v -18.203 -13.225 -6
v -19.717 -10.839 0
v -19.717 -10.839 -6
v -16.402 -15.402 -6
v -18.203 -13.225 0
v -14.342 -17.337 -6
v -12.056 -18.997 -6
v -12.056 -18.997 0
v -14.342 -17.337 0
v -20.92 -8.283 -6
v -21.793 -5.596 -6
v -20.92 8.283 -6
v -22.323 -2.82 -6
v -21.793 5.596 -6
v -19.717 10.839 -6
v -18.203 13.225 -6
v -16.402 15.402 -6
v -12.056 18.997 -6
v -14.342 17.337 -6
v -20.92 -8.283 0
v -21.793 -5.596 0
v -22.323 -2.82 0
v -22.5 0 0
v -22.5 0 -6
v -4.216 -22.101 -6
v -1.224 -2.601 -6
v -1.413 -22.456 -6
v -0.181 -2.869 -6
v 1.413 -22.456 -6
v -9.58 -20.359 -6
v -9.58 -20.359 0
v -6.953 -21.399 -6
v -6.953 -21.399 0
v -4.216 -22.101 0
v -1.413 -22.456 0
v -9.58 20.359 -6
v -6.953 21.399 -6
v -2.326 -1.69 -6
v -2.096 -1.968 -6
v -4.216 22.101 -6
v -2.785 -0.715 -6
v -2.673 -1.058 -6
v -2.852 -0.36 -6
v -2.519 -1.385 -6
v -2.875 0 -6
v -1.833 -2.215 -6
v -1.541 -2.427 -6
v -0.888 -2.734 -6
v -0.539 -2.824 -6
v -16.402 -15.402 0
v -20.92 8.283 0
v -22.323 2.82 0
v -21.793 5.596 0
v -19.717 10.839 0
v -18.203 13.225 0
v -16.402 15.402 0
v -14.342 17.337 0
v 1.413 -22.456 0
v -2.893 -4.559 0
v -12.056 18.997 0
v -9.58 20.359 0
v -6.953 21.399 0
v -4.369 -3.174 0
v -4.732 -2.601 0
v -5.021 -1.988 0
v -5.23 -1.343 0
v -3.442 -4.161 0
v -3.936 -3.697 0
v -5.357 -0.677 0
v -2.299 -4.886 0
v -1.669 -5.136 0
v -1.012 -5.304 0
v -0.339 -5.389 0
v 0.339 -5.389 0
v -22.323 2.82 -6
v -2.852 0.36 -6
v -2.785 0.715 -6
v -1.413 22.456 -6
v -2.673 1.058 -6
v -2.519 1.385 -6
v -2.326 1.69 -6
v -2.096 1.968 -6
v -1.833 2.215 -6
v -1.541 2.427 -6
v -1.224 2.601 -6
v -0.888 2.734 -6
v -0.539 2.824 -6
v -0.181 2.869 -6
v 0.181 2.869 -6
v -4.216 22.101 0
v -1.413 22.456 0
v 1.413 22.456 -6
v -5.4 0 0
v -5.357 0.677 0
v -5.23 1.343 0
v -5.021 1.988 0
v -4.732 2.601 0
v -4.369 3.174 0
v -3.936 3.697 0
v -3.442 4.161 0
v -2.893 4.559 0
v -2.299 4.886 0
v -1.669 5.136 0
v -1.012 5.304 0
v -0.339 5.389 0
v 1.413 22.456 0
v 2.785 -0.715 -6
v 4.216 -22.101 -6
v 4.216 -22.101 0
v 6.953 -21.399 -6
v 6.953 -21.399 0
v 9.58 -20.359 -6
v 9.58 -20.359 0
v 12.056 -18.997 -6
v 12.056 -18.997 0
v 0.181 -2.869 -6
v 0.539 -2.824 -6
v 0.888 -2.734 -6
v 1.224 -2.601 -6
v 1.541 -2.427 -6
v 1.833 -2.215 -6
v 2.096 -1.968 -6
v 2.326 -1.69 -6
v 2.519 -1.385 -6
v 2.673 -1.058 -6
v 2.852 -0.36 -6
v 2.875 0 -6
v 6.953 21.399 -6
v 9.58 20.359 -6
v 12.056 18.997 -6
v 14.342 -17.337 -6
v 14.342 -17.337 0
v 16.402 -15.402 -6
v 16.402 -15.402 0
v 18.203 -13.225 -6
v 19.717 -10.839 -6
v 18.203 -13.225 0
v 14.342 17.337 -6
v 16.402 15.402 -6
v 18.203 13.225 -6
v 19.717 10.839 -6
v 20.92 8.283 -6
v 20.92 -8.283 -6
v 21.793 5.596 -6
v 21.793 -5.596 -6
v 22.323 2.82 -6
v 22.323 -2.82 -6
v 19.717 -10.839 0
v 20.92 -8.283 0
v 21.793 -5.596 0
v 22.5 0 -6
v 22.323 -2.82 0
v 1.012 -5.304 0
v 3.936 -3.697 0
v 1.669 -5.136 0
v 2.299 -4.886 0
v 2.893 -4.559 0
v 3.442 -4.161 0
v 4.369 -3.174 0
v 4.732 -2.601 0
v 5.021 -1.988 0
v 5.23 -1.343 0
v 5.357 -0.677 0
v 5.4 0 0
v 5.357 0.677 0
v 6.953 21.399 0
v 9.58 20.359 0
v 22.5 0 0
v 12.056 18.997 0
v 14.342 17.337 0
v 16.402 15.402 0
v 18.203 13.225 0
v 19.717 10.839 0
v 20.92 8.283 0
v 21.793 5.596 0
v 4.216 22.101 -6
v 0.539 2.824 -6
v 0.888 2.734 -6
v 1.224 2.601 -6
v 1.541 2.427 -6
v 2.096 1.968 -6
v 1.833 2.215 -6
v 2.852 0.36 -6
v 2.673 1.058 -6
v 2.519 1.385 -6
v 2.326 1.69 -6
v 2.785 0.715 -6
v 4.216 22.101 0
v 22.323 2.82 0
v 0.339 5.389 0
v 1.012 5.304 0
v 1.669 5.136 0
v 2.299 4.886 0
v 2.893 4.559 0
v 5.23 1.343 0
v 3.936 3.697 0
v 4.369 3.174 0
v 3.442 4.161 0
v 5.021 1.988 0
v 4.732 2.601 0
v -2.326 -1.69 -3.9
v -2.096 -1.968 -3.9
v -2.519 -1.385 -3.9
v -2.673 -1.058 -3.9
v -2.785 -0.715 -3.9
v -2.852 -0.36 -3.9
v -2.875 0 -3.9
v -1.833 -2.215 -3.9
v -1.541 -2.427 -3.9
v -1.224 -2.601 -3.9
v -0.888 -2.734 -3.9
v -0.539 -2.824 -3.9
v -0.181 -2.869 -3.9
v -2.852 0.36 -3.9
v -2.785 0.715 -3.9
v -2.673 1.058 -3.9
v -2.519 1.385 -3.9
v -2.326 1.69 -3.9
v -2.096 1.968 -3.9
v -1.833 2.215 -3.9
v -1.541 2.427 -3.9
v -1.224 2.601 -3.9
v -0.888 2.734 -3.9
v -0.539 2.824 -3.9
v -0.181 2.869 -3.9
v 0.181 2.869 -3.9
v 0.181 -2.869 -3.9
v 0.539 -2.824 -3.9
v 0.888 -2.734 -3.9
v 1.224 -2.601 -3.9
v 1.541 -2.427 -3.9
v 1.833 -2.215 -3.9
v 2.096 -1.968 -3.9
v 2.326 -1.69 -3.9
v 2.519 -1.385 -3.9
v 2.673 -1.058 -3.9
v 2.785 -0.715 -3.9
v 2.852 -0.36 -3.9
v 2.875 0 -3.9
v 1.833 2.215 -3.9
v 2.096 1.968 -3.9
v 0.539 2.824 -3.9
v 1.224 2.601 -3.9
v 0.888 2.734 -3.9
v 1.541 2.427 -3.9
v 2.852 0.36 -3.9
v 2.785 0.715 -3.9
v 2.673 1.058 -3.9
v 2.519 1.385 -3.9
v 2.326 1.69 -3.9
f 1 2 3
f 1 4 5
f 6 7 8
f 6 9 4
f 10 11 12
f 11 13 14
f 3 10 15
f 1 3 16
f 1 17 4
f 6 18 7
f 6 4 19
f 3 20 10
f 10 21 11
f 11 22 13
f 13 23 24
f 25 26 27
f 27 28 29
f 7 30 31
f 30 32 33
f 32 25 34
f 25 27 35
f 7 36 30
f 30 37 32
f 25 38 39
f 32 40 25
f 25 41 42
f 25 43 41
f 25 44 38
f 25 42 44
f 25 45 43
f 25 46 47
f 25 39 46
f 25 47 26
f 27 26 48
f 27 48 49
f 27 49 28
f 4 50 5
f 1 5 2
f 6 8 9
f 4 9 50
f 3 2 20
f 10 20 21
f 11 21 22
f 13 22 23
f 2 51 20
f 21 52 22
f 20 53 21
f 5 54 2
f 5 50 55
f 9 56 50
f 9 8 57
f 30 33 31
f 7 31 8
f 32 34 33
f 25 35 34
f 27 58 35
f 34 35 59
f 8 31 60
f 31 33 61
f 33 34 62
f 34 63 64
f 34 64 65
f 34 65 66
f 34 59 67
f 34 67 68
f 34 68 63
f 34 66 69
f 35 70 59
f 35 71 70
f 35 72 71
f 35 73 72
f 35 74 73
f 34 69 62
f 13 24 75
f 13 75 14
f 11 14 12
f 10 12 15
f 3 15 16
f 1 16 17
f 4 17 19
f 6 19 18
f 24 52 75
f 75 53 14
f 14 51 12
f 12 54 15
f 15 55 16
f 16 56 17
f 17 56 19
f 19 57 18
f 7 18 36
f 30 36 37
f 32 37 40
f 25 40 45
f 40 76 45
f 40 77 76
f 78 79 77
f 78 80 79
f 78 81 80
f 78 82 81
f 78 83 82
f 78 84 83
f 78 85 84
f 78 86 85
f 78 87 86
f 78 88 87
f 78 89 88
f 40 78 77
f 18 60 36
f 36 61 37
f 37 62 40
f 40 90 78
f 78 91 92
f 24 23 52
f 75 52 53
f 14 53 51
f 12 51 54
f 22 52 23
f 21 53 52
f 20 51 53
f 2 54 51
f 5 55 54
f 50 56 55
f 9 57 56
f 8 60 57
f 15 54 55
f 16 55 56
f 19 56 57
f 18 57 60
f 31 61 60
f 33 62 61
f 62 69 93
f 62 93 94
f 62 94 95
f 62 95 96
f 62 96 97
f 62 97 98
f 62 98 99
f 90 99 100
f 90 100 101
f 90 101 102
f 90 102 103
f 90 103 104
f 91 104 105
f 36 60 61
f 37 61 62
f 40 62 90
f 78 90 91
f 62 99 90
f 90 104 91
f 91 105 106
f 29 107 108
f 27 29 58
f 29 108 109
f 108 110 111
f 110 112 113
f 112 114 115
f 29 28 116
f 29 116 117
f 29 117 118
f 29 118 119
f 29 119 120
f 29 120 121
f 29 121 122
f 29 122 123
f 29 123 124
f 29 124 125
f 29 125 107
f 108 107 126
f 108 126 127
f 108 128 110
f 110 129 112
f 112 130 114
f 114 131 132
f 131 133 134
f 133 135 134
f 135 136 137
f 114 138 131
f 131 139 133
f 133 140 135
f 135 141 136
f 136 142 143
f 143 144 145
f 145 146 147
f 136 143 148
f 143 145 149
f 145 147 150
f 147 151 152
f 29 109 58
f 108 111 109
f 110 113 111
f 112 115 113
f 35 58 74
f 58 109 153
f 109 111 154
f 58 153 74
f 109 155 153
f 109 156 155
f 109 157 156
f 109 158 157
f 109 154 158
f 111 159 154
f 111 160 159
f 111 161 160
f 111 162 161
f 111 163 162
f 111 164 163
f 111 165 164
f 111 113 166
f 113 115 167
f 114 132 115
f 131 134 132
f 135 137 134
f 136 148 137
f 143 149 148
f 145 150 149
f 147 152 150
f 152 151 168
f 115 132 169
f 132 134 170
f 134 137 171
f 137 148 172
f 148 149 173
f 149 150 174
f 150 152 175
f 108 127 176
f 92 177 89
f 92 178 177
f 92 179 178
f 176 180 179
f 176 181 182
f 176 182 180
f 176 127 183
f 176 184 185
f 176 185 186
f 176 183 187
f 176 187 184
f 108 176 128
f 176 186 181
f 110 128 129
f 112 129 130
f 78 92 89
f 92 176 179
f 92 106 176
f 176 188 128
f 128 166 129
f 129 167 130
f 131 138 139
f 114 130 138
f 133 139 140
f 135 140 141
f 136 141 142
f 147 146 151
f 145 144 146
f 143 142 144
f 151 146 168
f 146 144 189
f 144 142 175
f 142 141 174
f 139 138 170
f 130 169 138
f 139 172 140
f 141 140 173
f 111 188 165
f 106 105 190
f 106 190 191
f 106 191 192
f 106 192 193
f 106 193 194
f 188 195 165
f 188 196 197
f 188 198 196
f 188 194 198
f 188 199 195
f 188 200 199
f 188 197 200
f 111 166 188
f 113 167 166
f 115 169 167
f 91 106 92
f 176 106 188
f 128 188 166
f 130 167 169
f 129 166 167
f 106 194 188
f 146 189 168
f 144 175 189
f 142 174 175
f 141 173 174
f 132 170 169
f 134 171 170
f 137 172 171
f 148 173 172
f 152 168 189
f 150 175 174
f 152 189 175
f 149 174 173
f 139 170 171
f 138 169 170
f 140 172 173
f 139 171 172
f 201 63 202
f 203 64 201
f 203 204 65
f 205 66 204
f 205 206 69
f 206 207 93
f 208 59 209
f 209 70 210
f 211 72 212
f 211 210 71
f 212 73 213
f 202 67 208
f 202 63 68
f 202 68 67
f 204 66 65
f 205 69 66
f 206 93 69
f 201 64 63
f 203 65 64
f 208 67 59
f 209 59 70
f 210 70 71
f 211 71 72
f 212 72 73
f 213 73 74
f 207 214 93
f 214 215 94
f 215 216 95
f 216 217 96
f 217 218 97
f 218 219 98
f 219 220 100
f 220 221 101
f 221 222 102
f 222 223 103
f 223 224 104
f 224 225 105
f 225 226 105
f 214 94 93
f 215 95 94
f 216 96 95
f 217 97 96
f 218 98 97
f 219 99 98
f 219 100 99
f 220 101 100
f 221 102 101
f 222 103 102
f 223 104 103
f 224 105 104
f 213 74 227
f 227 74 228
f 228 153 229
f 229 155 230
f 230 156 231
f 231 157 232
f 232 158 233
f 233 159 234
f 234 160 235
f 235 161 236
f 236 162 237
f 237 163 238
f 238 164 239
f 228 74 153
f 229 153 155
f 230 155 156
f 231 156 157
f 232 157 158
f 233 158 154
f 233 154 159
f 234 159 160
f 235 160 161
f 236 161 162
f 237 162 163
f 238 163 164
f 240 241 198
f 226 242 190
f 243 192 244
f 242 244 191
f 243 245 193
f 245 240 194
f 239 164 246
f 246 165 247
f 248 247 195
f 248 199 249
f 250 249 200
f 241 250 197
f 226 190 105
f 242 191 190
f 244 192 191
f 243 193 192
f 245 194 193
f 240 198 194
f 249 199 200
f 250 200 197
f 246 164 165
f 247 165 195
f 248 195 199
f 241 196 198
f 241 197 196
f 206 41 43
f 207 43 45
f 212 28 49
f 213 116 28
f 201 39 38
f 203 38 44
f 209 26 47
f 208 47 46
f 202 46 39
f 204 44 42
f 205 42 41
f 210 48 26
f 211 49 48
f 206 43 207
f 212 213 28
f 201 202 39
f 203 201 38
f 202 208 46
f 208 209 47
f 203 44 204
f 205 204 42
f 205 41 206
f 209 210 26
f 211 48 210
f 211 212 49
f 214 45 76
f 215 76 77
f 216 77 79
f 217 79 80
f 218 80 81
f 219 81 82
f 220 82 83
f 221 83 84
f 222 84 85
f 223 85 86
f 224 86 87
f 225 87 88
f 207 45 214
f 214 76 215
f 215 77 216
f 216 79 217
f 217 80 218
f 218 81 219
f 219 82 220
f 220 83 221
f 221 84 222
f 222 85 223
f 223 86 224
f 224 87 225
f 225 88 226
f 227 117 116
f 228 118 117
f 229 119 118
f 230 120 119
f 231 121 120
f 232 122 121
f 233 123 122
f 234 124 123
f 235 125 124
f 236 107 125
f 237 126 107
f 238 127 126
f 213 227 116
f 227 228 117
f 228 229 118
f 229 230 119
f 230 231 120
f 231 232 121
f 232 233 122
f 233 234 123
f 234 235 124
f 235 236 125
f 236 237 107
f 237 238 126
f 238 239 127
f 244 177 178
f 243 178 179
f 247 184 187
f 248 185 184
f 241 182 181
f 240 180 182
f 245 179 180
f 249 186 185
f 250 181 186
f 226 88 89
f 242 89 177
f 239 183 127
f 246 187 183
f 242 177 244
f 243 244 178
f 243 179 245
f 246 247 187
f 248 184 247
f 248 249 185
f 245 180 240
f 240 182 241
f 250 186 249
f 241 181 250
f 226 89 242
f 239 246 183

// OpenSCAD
$fn = 50;

difference() {
	union() {
		translate(v = [0, 0, -6.0]) {
			cylinder(h = 6, r = 22.5);
		}
		#translate(v = [0, 0, -9.0]) {
			cylinder(h = 9, r = 2.875);
		}
	}
	union() {
		translate(v = [0, 0, 0]) {
			rotate(a = [0, 0, 0]) {
				difference() {
					union() {
						translate(v = [0, 0, -9.0]) {
							cylinder(h = 9, r = 2.6);
						}
						translate(v = [0, 0, -3.9]) {
							cylinder(h = 3.9, r1 = 2.875, r2 = 5.4);
						}
						translate(v = [0, 0, -9.0]) {
							cylinder(h = 9, r = 2.875);
						}
						translate(v = [0, 0, -9.0]) {
							cylinder(h = 9, r = 2.6);
						}
					}
					union();
				}
			}
		}
	}
}
